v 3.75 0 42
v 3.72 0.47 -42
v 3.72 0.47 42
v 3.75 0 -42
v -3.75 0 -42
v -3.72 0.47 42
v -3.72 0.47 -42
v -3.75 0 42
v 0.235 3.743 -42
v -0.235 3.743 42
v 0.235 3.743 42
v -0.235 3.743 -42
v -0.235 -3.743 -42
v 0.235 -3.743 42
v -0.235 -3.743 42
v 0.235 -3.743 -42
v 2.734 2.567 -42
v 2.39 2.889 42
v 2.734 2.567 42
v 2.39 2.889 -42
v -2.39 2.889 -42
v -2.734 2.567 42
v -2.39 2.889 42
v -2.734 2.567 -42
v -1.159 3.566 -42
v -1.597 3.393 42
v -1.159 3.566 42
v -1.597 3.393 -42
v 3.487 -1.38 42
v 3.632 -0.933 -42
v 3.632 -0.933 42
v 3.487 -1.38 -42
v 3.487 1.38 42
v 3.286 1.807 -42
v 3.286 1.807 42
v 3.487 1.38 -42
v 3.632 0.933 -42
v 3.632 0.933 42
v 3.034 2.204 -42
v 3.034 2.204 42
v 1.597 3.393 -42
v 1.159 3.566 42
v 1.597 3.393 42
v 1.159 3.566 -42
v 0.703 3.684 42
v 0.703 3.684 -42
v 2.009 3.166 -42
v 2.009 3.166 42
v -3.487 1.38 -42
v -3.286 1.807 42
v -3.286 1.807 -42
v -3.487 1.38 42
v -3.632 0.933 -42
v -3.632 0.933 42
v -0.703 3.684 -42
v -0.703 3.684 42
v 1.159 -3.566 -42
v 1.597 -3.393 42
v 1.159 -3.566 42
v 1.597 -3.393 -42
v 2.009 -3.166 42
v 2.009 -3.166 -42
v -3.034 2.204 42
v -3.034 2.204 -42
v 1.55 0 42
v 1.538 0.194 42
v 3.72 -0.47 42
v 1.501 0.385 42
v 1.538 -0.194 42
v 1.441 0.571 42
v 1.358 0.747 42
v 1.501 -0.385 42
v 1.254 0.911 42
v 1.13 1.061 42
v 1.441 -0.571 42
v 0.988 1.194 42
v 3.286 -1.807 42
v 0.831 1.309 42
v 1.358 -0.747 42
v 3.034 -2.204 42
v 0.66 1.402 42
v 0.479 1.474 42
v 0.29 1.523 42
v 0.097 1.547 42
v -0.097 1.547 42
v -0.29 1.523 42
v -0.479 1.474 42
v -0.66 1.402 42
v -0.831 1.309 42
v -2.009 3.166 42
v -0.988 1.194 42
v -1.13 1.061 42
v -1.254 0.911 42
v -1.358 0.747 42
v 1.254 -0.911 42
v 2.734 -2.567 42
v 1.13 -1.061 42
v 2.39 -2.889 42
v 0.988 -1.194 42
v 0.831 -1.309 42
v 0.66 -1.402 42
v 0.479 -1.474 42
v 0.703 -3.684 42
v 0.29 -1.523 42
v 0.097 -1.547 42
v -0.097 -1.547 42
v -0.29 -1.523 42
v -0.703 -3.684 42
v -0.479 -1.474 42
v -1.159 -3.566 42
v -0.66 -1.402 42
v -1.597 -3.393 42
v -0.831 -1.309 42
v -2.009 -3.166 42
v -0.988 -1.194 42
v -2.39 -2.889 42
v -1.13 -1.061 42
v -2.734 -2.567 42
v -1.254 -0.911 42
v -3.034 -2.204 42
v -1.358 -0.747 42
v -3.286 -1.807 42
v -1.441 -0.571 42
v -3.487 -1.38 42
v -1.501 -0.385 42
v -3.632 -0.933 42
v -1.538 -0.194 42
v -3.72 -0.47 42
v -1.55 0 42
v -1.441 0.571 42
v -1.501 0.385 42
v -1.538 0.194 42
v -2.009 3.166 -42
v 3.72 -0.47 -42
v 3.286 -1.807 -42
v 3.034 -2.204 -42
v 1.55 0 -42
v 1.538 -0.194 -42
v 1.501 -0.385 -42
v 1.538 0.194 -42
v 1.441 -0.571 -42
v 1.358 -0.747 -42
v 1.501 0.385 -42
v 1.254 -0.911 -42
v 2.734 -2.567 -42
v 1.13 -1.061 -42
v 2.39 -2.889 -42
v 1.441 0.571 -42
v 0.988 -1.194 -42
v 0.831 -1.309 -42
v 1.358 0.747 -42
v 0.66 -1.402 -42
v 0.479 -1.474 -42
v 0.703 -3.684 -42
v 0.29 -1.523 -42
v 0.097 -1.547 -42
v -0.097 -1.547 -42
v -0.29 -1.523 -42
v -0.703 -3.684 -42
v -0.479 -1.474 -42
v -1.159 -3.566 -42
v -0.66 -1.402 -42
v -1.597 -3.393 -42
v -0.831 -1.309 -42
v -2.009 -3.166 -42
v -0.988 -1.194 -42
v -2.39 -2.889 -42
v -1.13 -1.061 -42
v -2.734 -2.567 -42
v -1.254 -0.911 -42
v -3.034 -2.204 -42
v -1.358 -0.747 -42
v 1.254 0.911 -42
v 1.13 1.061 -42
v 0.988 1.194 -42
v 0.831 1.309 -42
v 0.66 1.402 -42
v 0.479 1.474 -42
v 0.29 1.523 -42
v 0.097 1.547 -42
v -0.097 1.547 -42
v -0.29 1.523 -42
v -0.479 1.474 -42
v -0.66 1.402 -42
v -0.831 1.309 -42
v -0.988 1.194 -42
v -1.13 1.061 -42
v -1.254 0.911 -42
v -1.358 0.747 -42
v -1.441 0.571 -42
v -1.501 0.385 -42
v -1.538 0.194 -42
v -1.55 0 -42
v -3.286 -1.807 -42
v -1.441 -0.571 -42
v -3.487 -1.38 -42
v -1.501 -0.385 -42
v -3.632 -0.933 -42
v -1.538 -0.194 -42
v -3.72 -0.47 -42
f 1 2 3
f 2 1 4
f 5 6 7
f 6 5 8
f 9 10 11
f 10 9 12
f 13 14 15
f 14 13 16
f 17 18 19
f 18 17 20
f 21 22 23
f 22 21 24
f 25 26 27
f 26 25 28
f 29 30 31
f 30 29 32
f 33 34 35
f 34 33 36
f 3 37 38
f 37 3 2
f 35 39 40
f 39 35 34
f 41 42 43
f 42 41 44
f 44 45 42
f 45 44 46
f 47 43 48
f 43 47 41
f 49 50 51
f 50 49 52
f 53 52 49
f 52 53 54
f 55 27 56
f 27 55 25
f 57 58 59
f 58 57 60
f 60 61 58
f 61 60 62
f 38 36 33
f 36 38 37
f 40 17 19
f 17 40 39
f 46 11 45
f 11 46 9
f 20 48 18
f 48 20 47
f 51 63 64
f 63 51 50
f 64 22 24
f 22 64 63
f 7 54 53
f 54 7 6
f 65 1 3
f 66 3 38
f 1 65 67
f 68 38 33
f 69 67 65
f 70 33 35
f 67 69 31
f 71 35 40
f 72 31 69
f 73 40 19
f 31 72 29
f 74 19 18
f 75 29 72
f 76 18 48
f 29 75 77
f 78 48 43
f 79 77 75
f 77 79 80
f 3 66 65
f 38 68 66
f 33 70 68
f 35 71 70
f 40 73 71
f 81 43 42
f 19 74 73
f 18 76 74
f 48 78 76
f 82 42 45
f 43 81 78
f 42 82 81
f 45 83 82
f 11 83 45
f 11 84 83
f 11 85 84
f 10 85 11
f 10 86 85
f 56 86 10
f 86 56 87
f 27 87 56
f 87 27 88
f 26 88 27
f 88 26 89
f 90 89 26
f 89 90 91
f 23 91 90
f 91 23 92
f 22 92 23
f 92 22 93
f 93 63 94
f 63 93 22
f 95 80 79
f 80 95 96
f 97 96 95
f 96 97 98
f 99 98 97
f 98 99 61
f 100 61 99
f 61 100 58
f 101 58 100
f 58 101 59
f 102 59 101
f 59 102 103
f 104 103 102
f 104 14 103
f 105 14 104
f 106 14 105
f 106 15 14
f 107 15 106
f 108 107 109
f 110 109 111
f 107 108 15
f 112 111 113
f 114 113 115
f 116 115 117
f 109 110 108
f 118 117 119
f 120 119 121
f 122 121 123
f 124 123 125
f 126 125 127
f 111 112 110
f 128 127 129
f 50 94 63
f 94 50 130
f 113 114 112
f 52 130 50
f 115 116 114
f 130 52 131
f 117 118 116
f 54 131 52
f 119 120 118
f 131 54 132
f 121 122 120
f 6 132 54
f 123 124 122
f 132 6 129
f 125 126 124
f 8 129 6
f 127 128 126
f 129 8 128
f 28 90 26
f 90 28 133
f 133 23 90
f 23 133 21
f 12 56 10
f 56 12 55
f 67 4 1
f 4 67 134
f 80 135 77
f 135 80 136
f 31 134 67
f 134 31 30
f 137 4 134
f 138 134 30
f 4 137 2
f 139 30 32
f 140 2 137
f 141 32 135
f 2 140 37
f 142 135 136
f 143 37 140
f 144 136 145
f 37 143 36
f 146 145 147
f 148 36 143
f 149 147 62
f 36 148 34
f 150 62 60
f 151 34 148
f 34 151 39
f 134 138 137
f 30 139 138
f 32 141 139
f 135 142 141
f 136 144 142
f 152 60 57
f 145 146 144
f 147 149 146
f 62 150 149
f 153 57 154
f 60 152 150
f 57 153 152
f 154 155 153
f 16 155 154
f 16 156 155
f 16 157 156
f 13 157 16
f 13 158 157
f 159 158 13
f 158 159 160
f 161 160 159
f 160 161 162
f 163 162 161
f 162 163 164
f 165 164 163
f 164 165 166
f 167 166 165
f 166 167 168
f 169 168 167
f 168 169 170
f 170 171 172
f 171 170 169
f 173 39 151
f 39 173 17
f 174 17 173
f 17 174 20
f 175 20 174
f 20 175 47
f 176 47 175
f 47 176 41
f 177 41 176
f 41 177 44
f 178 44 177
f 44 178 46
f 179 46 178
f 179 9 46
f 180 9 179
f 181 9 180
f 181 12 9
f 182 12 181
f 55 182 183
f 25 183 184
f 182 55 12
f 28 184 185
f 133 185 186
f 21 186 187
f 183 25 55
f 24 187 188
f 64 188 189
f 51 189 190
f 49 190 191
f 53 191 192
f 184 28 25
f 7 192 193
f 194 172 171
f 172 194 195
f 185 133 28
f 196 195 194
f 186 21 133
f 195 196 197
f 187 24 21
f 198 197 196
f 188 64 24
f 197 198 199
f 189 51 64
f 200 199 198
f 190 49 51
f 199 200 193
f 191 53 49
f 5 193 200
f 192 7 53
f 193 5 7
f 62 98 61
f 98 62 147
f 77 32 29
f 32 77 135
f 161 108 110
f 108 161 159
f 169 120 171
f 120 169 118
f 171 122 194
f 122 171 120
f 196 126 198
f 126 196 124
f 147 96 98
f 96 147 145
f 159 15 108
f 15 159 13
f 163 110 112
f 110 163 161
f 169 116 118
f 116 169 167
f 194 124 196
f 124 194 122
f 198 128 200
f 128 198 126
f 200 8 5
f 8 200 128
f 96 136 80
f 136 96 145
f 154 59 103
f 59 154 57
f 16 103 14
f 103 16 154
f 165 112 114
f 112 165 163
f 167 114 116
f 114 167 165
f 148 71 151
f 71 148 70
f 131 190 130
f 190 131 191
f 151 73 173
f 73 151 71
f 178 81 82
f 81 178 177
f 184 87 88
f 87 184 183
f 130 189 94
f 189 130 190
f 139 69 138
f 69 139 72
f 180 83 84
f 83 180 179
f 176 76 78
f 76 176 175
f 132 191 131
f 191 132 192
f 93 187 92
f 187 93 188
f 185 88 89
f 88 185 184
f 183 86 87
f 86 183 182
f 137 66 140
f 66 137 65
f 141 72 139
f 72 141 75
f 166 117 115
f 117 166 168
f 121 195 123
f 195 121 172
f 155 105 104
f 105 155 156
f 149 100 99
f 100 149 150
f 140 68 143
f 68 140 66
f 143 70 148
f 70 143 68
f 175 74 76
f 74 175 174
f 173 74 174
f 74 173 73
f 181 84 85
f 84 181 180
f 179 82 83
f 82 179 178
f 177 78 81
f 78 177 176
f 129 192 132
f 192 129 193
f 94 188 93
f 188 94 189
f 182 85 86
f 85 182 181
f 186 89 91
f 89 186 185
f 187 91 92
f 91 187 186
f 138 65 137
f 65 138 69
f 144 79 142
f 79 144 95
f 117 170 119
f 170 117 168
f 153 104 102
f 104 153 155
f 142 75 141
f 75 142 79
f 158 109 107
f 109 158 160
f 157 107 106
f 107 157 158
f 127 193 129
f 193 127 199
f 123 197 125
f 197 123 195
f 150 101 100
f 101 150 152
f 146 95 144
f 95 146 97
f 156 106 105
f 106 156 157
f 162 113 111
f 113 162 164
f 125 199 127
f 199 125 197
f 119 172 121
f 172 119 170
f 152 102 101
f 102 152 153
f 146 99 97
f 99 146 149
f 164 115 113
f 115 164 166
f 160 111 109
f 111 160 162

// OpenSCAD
$fn = 50;


difference() {
	union() {
		translate(v = [0, 0, -42.0000000000]) {
			cylinder(h = 84, r = 3.7500000000);
		}
	}
	union() {
		translate(v = [0, 0, -100.0000000000]) {
			cylinder(h = 200, r = 1.5500000000);
		}
	}
}
